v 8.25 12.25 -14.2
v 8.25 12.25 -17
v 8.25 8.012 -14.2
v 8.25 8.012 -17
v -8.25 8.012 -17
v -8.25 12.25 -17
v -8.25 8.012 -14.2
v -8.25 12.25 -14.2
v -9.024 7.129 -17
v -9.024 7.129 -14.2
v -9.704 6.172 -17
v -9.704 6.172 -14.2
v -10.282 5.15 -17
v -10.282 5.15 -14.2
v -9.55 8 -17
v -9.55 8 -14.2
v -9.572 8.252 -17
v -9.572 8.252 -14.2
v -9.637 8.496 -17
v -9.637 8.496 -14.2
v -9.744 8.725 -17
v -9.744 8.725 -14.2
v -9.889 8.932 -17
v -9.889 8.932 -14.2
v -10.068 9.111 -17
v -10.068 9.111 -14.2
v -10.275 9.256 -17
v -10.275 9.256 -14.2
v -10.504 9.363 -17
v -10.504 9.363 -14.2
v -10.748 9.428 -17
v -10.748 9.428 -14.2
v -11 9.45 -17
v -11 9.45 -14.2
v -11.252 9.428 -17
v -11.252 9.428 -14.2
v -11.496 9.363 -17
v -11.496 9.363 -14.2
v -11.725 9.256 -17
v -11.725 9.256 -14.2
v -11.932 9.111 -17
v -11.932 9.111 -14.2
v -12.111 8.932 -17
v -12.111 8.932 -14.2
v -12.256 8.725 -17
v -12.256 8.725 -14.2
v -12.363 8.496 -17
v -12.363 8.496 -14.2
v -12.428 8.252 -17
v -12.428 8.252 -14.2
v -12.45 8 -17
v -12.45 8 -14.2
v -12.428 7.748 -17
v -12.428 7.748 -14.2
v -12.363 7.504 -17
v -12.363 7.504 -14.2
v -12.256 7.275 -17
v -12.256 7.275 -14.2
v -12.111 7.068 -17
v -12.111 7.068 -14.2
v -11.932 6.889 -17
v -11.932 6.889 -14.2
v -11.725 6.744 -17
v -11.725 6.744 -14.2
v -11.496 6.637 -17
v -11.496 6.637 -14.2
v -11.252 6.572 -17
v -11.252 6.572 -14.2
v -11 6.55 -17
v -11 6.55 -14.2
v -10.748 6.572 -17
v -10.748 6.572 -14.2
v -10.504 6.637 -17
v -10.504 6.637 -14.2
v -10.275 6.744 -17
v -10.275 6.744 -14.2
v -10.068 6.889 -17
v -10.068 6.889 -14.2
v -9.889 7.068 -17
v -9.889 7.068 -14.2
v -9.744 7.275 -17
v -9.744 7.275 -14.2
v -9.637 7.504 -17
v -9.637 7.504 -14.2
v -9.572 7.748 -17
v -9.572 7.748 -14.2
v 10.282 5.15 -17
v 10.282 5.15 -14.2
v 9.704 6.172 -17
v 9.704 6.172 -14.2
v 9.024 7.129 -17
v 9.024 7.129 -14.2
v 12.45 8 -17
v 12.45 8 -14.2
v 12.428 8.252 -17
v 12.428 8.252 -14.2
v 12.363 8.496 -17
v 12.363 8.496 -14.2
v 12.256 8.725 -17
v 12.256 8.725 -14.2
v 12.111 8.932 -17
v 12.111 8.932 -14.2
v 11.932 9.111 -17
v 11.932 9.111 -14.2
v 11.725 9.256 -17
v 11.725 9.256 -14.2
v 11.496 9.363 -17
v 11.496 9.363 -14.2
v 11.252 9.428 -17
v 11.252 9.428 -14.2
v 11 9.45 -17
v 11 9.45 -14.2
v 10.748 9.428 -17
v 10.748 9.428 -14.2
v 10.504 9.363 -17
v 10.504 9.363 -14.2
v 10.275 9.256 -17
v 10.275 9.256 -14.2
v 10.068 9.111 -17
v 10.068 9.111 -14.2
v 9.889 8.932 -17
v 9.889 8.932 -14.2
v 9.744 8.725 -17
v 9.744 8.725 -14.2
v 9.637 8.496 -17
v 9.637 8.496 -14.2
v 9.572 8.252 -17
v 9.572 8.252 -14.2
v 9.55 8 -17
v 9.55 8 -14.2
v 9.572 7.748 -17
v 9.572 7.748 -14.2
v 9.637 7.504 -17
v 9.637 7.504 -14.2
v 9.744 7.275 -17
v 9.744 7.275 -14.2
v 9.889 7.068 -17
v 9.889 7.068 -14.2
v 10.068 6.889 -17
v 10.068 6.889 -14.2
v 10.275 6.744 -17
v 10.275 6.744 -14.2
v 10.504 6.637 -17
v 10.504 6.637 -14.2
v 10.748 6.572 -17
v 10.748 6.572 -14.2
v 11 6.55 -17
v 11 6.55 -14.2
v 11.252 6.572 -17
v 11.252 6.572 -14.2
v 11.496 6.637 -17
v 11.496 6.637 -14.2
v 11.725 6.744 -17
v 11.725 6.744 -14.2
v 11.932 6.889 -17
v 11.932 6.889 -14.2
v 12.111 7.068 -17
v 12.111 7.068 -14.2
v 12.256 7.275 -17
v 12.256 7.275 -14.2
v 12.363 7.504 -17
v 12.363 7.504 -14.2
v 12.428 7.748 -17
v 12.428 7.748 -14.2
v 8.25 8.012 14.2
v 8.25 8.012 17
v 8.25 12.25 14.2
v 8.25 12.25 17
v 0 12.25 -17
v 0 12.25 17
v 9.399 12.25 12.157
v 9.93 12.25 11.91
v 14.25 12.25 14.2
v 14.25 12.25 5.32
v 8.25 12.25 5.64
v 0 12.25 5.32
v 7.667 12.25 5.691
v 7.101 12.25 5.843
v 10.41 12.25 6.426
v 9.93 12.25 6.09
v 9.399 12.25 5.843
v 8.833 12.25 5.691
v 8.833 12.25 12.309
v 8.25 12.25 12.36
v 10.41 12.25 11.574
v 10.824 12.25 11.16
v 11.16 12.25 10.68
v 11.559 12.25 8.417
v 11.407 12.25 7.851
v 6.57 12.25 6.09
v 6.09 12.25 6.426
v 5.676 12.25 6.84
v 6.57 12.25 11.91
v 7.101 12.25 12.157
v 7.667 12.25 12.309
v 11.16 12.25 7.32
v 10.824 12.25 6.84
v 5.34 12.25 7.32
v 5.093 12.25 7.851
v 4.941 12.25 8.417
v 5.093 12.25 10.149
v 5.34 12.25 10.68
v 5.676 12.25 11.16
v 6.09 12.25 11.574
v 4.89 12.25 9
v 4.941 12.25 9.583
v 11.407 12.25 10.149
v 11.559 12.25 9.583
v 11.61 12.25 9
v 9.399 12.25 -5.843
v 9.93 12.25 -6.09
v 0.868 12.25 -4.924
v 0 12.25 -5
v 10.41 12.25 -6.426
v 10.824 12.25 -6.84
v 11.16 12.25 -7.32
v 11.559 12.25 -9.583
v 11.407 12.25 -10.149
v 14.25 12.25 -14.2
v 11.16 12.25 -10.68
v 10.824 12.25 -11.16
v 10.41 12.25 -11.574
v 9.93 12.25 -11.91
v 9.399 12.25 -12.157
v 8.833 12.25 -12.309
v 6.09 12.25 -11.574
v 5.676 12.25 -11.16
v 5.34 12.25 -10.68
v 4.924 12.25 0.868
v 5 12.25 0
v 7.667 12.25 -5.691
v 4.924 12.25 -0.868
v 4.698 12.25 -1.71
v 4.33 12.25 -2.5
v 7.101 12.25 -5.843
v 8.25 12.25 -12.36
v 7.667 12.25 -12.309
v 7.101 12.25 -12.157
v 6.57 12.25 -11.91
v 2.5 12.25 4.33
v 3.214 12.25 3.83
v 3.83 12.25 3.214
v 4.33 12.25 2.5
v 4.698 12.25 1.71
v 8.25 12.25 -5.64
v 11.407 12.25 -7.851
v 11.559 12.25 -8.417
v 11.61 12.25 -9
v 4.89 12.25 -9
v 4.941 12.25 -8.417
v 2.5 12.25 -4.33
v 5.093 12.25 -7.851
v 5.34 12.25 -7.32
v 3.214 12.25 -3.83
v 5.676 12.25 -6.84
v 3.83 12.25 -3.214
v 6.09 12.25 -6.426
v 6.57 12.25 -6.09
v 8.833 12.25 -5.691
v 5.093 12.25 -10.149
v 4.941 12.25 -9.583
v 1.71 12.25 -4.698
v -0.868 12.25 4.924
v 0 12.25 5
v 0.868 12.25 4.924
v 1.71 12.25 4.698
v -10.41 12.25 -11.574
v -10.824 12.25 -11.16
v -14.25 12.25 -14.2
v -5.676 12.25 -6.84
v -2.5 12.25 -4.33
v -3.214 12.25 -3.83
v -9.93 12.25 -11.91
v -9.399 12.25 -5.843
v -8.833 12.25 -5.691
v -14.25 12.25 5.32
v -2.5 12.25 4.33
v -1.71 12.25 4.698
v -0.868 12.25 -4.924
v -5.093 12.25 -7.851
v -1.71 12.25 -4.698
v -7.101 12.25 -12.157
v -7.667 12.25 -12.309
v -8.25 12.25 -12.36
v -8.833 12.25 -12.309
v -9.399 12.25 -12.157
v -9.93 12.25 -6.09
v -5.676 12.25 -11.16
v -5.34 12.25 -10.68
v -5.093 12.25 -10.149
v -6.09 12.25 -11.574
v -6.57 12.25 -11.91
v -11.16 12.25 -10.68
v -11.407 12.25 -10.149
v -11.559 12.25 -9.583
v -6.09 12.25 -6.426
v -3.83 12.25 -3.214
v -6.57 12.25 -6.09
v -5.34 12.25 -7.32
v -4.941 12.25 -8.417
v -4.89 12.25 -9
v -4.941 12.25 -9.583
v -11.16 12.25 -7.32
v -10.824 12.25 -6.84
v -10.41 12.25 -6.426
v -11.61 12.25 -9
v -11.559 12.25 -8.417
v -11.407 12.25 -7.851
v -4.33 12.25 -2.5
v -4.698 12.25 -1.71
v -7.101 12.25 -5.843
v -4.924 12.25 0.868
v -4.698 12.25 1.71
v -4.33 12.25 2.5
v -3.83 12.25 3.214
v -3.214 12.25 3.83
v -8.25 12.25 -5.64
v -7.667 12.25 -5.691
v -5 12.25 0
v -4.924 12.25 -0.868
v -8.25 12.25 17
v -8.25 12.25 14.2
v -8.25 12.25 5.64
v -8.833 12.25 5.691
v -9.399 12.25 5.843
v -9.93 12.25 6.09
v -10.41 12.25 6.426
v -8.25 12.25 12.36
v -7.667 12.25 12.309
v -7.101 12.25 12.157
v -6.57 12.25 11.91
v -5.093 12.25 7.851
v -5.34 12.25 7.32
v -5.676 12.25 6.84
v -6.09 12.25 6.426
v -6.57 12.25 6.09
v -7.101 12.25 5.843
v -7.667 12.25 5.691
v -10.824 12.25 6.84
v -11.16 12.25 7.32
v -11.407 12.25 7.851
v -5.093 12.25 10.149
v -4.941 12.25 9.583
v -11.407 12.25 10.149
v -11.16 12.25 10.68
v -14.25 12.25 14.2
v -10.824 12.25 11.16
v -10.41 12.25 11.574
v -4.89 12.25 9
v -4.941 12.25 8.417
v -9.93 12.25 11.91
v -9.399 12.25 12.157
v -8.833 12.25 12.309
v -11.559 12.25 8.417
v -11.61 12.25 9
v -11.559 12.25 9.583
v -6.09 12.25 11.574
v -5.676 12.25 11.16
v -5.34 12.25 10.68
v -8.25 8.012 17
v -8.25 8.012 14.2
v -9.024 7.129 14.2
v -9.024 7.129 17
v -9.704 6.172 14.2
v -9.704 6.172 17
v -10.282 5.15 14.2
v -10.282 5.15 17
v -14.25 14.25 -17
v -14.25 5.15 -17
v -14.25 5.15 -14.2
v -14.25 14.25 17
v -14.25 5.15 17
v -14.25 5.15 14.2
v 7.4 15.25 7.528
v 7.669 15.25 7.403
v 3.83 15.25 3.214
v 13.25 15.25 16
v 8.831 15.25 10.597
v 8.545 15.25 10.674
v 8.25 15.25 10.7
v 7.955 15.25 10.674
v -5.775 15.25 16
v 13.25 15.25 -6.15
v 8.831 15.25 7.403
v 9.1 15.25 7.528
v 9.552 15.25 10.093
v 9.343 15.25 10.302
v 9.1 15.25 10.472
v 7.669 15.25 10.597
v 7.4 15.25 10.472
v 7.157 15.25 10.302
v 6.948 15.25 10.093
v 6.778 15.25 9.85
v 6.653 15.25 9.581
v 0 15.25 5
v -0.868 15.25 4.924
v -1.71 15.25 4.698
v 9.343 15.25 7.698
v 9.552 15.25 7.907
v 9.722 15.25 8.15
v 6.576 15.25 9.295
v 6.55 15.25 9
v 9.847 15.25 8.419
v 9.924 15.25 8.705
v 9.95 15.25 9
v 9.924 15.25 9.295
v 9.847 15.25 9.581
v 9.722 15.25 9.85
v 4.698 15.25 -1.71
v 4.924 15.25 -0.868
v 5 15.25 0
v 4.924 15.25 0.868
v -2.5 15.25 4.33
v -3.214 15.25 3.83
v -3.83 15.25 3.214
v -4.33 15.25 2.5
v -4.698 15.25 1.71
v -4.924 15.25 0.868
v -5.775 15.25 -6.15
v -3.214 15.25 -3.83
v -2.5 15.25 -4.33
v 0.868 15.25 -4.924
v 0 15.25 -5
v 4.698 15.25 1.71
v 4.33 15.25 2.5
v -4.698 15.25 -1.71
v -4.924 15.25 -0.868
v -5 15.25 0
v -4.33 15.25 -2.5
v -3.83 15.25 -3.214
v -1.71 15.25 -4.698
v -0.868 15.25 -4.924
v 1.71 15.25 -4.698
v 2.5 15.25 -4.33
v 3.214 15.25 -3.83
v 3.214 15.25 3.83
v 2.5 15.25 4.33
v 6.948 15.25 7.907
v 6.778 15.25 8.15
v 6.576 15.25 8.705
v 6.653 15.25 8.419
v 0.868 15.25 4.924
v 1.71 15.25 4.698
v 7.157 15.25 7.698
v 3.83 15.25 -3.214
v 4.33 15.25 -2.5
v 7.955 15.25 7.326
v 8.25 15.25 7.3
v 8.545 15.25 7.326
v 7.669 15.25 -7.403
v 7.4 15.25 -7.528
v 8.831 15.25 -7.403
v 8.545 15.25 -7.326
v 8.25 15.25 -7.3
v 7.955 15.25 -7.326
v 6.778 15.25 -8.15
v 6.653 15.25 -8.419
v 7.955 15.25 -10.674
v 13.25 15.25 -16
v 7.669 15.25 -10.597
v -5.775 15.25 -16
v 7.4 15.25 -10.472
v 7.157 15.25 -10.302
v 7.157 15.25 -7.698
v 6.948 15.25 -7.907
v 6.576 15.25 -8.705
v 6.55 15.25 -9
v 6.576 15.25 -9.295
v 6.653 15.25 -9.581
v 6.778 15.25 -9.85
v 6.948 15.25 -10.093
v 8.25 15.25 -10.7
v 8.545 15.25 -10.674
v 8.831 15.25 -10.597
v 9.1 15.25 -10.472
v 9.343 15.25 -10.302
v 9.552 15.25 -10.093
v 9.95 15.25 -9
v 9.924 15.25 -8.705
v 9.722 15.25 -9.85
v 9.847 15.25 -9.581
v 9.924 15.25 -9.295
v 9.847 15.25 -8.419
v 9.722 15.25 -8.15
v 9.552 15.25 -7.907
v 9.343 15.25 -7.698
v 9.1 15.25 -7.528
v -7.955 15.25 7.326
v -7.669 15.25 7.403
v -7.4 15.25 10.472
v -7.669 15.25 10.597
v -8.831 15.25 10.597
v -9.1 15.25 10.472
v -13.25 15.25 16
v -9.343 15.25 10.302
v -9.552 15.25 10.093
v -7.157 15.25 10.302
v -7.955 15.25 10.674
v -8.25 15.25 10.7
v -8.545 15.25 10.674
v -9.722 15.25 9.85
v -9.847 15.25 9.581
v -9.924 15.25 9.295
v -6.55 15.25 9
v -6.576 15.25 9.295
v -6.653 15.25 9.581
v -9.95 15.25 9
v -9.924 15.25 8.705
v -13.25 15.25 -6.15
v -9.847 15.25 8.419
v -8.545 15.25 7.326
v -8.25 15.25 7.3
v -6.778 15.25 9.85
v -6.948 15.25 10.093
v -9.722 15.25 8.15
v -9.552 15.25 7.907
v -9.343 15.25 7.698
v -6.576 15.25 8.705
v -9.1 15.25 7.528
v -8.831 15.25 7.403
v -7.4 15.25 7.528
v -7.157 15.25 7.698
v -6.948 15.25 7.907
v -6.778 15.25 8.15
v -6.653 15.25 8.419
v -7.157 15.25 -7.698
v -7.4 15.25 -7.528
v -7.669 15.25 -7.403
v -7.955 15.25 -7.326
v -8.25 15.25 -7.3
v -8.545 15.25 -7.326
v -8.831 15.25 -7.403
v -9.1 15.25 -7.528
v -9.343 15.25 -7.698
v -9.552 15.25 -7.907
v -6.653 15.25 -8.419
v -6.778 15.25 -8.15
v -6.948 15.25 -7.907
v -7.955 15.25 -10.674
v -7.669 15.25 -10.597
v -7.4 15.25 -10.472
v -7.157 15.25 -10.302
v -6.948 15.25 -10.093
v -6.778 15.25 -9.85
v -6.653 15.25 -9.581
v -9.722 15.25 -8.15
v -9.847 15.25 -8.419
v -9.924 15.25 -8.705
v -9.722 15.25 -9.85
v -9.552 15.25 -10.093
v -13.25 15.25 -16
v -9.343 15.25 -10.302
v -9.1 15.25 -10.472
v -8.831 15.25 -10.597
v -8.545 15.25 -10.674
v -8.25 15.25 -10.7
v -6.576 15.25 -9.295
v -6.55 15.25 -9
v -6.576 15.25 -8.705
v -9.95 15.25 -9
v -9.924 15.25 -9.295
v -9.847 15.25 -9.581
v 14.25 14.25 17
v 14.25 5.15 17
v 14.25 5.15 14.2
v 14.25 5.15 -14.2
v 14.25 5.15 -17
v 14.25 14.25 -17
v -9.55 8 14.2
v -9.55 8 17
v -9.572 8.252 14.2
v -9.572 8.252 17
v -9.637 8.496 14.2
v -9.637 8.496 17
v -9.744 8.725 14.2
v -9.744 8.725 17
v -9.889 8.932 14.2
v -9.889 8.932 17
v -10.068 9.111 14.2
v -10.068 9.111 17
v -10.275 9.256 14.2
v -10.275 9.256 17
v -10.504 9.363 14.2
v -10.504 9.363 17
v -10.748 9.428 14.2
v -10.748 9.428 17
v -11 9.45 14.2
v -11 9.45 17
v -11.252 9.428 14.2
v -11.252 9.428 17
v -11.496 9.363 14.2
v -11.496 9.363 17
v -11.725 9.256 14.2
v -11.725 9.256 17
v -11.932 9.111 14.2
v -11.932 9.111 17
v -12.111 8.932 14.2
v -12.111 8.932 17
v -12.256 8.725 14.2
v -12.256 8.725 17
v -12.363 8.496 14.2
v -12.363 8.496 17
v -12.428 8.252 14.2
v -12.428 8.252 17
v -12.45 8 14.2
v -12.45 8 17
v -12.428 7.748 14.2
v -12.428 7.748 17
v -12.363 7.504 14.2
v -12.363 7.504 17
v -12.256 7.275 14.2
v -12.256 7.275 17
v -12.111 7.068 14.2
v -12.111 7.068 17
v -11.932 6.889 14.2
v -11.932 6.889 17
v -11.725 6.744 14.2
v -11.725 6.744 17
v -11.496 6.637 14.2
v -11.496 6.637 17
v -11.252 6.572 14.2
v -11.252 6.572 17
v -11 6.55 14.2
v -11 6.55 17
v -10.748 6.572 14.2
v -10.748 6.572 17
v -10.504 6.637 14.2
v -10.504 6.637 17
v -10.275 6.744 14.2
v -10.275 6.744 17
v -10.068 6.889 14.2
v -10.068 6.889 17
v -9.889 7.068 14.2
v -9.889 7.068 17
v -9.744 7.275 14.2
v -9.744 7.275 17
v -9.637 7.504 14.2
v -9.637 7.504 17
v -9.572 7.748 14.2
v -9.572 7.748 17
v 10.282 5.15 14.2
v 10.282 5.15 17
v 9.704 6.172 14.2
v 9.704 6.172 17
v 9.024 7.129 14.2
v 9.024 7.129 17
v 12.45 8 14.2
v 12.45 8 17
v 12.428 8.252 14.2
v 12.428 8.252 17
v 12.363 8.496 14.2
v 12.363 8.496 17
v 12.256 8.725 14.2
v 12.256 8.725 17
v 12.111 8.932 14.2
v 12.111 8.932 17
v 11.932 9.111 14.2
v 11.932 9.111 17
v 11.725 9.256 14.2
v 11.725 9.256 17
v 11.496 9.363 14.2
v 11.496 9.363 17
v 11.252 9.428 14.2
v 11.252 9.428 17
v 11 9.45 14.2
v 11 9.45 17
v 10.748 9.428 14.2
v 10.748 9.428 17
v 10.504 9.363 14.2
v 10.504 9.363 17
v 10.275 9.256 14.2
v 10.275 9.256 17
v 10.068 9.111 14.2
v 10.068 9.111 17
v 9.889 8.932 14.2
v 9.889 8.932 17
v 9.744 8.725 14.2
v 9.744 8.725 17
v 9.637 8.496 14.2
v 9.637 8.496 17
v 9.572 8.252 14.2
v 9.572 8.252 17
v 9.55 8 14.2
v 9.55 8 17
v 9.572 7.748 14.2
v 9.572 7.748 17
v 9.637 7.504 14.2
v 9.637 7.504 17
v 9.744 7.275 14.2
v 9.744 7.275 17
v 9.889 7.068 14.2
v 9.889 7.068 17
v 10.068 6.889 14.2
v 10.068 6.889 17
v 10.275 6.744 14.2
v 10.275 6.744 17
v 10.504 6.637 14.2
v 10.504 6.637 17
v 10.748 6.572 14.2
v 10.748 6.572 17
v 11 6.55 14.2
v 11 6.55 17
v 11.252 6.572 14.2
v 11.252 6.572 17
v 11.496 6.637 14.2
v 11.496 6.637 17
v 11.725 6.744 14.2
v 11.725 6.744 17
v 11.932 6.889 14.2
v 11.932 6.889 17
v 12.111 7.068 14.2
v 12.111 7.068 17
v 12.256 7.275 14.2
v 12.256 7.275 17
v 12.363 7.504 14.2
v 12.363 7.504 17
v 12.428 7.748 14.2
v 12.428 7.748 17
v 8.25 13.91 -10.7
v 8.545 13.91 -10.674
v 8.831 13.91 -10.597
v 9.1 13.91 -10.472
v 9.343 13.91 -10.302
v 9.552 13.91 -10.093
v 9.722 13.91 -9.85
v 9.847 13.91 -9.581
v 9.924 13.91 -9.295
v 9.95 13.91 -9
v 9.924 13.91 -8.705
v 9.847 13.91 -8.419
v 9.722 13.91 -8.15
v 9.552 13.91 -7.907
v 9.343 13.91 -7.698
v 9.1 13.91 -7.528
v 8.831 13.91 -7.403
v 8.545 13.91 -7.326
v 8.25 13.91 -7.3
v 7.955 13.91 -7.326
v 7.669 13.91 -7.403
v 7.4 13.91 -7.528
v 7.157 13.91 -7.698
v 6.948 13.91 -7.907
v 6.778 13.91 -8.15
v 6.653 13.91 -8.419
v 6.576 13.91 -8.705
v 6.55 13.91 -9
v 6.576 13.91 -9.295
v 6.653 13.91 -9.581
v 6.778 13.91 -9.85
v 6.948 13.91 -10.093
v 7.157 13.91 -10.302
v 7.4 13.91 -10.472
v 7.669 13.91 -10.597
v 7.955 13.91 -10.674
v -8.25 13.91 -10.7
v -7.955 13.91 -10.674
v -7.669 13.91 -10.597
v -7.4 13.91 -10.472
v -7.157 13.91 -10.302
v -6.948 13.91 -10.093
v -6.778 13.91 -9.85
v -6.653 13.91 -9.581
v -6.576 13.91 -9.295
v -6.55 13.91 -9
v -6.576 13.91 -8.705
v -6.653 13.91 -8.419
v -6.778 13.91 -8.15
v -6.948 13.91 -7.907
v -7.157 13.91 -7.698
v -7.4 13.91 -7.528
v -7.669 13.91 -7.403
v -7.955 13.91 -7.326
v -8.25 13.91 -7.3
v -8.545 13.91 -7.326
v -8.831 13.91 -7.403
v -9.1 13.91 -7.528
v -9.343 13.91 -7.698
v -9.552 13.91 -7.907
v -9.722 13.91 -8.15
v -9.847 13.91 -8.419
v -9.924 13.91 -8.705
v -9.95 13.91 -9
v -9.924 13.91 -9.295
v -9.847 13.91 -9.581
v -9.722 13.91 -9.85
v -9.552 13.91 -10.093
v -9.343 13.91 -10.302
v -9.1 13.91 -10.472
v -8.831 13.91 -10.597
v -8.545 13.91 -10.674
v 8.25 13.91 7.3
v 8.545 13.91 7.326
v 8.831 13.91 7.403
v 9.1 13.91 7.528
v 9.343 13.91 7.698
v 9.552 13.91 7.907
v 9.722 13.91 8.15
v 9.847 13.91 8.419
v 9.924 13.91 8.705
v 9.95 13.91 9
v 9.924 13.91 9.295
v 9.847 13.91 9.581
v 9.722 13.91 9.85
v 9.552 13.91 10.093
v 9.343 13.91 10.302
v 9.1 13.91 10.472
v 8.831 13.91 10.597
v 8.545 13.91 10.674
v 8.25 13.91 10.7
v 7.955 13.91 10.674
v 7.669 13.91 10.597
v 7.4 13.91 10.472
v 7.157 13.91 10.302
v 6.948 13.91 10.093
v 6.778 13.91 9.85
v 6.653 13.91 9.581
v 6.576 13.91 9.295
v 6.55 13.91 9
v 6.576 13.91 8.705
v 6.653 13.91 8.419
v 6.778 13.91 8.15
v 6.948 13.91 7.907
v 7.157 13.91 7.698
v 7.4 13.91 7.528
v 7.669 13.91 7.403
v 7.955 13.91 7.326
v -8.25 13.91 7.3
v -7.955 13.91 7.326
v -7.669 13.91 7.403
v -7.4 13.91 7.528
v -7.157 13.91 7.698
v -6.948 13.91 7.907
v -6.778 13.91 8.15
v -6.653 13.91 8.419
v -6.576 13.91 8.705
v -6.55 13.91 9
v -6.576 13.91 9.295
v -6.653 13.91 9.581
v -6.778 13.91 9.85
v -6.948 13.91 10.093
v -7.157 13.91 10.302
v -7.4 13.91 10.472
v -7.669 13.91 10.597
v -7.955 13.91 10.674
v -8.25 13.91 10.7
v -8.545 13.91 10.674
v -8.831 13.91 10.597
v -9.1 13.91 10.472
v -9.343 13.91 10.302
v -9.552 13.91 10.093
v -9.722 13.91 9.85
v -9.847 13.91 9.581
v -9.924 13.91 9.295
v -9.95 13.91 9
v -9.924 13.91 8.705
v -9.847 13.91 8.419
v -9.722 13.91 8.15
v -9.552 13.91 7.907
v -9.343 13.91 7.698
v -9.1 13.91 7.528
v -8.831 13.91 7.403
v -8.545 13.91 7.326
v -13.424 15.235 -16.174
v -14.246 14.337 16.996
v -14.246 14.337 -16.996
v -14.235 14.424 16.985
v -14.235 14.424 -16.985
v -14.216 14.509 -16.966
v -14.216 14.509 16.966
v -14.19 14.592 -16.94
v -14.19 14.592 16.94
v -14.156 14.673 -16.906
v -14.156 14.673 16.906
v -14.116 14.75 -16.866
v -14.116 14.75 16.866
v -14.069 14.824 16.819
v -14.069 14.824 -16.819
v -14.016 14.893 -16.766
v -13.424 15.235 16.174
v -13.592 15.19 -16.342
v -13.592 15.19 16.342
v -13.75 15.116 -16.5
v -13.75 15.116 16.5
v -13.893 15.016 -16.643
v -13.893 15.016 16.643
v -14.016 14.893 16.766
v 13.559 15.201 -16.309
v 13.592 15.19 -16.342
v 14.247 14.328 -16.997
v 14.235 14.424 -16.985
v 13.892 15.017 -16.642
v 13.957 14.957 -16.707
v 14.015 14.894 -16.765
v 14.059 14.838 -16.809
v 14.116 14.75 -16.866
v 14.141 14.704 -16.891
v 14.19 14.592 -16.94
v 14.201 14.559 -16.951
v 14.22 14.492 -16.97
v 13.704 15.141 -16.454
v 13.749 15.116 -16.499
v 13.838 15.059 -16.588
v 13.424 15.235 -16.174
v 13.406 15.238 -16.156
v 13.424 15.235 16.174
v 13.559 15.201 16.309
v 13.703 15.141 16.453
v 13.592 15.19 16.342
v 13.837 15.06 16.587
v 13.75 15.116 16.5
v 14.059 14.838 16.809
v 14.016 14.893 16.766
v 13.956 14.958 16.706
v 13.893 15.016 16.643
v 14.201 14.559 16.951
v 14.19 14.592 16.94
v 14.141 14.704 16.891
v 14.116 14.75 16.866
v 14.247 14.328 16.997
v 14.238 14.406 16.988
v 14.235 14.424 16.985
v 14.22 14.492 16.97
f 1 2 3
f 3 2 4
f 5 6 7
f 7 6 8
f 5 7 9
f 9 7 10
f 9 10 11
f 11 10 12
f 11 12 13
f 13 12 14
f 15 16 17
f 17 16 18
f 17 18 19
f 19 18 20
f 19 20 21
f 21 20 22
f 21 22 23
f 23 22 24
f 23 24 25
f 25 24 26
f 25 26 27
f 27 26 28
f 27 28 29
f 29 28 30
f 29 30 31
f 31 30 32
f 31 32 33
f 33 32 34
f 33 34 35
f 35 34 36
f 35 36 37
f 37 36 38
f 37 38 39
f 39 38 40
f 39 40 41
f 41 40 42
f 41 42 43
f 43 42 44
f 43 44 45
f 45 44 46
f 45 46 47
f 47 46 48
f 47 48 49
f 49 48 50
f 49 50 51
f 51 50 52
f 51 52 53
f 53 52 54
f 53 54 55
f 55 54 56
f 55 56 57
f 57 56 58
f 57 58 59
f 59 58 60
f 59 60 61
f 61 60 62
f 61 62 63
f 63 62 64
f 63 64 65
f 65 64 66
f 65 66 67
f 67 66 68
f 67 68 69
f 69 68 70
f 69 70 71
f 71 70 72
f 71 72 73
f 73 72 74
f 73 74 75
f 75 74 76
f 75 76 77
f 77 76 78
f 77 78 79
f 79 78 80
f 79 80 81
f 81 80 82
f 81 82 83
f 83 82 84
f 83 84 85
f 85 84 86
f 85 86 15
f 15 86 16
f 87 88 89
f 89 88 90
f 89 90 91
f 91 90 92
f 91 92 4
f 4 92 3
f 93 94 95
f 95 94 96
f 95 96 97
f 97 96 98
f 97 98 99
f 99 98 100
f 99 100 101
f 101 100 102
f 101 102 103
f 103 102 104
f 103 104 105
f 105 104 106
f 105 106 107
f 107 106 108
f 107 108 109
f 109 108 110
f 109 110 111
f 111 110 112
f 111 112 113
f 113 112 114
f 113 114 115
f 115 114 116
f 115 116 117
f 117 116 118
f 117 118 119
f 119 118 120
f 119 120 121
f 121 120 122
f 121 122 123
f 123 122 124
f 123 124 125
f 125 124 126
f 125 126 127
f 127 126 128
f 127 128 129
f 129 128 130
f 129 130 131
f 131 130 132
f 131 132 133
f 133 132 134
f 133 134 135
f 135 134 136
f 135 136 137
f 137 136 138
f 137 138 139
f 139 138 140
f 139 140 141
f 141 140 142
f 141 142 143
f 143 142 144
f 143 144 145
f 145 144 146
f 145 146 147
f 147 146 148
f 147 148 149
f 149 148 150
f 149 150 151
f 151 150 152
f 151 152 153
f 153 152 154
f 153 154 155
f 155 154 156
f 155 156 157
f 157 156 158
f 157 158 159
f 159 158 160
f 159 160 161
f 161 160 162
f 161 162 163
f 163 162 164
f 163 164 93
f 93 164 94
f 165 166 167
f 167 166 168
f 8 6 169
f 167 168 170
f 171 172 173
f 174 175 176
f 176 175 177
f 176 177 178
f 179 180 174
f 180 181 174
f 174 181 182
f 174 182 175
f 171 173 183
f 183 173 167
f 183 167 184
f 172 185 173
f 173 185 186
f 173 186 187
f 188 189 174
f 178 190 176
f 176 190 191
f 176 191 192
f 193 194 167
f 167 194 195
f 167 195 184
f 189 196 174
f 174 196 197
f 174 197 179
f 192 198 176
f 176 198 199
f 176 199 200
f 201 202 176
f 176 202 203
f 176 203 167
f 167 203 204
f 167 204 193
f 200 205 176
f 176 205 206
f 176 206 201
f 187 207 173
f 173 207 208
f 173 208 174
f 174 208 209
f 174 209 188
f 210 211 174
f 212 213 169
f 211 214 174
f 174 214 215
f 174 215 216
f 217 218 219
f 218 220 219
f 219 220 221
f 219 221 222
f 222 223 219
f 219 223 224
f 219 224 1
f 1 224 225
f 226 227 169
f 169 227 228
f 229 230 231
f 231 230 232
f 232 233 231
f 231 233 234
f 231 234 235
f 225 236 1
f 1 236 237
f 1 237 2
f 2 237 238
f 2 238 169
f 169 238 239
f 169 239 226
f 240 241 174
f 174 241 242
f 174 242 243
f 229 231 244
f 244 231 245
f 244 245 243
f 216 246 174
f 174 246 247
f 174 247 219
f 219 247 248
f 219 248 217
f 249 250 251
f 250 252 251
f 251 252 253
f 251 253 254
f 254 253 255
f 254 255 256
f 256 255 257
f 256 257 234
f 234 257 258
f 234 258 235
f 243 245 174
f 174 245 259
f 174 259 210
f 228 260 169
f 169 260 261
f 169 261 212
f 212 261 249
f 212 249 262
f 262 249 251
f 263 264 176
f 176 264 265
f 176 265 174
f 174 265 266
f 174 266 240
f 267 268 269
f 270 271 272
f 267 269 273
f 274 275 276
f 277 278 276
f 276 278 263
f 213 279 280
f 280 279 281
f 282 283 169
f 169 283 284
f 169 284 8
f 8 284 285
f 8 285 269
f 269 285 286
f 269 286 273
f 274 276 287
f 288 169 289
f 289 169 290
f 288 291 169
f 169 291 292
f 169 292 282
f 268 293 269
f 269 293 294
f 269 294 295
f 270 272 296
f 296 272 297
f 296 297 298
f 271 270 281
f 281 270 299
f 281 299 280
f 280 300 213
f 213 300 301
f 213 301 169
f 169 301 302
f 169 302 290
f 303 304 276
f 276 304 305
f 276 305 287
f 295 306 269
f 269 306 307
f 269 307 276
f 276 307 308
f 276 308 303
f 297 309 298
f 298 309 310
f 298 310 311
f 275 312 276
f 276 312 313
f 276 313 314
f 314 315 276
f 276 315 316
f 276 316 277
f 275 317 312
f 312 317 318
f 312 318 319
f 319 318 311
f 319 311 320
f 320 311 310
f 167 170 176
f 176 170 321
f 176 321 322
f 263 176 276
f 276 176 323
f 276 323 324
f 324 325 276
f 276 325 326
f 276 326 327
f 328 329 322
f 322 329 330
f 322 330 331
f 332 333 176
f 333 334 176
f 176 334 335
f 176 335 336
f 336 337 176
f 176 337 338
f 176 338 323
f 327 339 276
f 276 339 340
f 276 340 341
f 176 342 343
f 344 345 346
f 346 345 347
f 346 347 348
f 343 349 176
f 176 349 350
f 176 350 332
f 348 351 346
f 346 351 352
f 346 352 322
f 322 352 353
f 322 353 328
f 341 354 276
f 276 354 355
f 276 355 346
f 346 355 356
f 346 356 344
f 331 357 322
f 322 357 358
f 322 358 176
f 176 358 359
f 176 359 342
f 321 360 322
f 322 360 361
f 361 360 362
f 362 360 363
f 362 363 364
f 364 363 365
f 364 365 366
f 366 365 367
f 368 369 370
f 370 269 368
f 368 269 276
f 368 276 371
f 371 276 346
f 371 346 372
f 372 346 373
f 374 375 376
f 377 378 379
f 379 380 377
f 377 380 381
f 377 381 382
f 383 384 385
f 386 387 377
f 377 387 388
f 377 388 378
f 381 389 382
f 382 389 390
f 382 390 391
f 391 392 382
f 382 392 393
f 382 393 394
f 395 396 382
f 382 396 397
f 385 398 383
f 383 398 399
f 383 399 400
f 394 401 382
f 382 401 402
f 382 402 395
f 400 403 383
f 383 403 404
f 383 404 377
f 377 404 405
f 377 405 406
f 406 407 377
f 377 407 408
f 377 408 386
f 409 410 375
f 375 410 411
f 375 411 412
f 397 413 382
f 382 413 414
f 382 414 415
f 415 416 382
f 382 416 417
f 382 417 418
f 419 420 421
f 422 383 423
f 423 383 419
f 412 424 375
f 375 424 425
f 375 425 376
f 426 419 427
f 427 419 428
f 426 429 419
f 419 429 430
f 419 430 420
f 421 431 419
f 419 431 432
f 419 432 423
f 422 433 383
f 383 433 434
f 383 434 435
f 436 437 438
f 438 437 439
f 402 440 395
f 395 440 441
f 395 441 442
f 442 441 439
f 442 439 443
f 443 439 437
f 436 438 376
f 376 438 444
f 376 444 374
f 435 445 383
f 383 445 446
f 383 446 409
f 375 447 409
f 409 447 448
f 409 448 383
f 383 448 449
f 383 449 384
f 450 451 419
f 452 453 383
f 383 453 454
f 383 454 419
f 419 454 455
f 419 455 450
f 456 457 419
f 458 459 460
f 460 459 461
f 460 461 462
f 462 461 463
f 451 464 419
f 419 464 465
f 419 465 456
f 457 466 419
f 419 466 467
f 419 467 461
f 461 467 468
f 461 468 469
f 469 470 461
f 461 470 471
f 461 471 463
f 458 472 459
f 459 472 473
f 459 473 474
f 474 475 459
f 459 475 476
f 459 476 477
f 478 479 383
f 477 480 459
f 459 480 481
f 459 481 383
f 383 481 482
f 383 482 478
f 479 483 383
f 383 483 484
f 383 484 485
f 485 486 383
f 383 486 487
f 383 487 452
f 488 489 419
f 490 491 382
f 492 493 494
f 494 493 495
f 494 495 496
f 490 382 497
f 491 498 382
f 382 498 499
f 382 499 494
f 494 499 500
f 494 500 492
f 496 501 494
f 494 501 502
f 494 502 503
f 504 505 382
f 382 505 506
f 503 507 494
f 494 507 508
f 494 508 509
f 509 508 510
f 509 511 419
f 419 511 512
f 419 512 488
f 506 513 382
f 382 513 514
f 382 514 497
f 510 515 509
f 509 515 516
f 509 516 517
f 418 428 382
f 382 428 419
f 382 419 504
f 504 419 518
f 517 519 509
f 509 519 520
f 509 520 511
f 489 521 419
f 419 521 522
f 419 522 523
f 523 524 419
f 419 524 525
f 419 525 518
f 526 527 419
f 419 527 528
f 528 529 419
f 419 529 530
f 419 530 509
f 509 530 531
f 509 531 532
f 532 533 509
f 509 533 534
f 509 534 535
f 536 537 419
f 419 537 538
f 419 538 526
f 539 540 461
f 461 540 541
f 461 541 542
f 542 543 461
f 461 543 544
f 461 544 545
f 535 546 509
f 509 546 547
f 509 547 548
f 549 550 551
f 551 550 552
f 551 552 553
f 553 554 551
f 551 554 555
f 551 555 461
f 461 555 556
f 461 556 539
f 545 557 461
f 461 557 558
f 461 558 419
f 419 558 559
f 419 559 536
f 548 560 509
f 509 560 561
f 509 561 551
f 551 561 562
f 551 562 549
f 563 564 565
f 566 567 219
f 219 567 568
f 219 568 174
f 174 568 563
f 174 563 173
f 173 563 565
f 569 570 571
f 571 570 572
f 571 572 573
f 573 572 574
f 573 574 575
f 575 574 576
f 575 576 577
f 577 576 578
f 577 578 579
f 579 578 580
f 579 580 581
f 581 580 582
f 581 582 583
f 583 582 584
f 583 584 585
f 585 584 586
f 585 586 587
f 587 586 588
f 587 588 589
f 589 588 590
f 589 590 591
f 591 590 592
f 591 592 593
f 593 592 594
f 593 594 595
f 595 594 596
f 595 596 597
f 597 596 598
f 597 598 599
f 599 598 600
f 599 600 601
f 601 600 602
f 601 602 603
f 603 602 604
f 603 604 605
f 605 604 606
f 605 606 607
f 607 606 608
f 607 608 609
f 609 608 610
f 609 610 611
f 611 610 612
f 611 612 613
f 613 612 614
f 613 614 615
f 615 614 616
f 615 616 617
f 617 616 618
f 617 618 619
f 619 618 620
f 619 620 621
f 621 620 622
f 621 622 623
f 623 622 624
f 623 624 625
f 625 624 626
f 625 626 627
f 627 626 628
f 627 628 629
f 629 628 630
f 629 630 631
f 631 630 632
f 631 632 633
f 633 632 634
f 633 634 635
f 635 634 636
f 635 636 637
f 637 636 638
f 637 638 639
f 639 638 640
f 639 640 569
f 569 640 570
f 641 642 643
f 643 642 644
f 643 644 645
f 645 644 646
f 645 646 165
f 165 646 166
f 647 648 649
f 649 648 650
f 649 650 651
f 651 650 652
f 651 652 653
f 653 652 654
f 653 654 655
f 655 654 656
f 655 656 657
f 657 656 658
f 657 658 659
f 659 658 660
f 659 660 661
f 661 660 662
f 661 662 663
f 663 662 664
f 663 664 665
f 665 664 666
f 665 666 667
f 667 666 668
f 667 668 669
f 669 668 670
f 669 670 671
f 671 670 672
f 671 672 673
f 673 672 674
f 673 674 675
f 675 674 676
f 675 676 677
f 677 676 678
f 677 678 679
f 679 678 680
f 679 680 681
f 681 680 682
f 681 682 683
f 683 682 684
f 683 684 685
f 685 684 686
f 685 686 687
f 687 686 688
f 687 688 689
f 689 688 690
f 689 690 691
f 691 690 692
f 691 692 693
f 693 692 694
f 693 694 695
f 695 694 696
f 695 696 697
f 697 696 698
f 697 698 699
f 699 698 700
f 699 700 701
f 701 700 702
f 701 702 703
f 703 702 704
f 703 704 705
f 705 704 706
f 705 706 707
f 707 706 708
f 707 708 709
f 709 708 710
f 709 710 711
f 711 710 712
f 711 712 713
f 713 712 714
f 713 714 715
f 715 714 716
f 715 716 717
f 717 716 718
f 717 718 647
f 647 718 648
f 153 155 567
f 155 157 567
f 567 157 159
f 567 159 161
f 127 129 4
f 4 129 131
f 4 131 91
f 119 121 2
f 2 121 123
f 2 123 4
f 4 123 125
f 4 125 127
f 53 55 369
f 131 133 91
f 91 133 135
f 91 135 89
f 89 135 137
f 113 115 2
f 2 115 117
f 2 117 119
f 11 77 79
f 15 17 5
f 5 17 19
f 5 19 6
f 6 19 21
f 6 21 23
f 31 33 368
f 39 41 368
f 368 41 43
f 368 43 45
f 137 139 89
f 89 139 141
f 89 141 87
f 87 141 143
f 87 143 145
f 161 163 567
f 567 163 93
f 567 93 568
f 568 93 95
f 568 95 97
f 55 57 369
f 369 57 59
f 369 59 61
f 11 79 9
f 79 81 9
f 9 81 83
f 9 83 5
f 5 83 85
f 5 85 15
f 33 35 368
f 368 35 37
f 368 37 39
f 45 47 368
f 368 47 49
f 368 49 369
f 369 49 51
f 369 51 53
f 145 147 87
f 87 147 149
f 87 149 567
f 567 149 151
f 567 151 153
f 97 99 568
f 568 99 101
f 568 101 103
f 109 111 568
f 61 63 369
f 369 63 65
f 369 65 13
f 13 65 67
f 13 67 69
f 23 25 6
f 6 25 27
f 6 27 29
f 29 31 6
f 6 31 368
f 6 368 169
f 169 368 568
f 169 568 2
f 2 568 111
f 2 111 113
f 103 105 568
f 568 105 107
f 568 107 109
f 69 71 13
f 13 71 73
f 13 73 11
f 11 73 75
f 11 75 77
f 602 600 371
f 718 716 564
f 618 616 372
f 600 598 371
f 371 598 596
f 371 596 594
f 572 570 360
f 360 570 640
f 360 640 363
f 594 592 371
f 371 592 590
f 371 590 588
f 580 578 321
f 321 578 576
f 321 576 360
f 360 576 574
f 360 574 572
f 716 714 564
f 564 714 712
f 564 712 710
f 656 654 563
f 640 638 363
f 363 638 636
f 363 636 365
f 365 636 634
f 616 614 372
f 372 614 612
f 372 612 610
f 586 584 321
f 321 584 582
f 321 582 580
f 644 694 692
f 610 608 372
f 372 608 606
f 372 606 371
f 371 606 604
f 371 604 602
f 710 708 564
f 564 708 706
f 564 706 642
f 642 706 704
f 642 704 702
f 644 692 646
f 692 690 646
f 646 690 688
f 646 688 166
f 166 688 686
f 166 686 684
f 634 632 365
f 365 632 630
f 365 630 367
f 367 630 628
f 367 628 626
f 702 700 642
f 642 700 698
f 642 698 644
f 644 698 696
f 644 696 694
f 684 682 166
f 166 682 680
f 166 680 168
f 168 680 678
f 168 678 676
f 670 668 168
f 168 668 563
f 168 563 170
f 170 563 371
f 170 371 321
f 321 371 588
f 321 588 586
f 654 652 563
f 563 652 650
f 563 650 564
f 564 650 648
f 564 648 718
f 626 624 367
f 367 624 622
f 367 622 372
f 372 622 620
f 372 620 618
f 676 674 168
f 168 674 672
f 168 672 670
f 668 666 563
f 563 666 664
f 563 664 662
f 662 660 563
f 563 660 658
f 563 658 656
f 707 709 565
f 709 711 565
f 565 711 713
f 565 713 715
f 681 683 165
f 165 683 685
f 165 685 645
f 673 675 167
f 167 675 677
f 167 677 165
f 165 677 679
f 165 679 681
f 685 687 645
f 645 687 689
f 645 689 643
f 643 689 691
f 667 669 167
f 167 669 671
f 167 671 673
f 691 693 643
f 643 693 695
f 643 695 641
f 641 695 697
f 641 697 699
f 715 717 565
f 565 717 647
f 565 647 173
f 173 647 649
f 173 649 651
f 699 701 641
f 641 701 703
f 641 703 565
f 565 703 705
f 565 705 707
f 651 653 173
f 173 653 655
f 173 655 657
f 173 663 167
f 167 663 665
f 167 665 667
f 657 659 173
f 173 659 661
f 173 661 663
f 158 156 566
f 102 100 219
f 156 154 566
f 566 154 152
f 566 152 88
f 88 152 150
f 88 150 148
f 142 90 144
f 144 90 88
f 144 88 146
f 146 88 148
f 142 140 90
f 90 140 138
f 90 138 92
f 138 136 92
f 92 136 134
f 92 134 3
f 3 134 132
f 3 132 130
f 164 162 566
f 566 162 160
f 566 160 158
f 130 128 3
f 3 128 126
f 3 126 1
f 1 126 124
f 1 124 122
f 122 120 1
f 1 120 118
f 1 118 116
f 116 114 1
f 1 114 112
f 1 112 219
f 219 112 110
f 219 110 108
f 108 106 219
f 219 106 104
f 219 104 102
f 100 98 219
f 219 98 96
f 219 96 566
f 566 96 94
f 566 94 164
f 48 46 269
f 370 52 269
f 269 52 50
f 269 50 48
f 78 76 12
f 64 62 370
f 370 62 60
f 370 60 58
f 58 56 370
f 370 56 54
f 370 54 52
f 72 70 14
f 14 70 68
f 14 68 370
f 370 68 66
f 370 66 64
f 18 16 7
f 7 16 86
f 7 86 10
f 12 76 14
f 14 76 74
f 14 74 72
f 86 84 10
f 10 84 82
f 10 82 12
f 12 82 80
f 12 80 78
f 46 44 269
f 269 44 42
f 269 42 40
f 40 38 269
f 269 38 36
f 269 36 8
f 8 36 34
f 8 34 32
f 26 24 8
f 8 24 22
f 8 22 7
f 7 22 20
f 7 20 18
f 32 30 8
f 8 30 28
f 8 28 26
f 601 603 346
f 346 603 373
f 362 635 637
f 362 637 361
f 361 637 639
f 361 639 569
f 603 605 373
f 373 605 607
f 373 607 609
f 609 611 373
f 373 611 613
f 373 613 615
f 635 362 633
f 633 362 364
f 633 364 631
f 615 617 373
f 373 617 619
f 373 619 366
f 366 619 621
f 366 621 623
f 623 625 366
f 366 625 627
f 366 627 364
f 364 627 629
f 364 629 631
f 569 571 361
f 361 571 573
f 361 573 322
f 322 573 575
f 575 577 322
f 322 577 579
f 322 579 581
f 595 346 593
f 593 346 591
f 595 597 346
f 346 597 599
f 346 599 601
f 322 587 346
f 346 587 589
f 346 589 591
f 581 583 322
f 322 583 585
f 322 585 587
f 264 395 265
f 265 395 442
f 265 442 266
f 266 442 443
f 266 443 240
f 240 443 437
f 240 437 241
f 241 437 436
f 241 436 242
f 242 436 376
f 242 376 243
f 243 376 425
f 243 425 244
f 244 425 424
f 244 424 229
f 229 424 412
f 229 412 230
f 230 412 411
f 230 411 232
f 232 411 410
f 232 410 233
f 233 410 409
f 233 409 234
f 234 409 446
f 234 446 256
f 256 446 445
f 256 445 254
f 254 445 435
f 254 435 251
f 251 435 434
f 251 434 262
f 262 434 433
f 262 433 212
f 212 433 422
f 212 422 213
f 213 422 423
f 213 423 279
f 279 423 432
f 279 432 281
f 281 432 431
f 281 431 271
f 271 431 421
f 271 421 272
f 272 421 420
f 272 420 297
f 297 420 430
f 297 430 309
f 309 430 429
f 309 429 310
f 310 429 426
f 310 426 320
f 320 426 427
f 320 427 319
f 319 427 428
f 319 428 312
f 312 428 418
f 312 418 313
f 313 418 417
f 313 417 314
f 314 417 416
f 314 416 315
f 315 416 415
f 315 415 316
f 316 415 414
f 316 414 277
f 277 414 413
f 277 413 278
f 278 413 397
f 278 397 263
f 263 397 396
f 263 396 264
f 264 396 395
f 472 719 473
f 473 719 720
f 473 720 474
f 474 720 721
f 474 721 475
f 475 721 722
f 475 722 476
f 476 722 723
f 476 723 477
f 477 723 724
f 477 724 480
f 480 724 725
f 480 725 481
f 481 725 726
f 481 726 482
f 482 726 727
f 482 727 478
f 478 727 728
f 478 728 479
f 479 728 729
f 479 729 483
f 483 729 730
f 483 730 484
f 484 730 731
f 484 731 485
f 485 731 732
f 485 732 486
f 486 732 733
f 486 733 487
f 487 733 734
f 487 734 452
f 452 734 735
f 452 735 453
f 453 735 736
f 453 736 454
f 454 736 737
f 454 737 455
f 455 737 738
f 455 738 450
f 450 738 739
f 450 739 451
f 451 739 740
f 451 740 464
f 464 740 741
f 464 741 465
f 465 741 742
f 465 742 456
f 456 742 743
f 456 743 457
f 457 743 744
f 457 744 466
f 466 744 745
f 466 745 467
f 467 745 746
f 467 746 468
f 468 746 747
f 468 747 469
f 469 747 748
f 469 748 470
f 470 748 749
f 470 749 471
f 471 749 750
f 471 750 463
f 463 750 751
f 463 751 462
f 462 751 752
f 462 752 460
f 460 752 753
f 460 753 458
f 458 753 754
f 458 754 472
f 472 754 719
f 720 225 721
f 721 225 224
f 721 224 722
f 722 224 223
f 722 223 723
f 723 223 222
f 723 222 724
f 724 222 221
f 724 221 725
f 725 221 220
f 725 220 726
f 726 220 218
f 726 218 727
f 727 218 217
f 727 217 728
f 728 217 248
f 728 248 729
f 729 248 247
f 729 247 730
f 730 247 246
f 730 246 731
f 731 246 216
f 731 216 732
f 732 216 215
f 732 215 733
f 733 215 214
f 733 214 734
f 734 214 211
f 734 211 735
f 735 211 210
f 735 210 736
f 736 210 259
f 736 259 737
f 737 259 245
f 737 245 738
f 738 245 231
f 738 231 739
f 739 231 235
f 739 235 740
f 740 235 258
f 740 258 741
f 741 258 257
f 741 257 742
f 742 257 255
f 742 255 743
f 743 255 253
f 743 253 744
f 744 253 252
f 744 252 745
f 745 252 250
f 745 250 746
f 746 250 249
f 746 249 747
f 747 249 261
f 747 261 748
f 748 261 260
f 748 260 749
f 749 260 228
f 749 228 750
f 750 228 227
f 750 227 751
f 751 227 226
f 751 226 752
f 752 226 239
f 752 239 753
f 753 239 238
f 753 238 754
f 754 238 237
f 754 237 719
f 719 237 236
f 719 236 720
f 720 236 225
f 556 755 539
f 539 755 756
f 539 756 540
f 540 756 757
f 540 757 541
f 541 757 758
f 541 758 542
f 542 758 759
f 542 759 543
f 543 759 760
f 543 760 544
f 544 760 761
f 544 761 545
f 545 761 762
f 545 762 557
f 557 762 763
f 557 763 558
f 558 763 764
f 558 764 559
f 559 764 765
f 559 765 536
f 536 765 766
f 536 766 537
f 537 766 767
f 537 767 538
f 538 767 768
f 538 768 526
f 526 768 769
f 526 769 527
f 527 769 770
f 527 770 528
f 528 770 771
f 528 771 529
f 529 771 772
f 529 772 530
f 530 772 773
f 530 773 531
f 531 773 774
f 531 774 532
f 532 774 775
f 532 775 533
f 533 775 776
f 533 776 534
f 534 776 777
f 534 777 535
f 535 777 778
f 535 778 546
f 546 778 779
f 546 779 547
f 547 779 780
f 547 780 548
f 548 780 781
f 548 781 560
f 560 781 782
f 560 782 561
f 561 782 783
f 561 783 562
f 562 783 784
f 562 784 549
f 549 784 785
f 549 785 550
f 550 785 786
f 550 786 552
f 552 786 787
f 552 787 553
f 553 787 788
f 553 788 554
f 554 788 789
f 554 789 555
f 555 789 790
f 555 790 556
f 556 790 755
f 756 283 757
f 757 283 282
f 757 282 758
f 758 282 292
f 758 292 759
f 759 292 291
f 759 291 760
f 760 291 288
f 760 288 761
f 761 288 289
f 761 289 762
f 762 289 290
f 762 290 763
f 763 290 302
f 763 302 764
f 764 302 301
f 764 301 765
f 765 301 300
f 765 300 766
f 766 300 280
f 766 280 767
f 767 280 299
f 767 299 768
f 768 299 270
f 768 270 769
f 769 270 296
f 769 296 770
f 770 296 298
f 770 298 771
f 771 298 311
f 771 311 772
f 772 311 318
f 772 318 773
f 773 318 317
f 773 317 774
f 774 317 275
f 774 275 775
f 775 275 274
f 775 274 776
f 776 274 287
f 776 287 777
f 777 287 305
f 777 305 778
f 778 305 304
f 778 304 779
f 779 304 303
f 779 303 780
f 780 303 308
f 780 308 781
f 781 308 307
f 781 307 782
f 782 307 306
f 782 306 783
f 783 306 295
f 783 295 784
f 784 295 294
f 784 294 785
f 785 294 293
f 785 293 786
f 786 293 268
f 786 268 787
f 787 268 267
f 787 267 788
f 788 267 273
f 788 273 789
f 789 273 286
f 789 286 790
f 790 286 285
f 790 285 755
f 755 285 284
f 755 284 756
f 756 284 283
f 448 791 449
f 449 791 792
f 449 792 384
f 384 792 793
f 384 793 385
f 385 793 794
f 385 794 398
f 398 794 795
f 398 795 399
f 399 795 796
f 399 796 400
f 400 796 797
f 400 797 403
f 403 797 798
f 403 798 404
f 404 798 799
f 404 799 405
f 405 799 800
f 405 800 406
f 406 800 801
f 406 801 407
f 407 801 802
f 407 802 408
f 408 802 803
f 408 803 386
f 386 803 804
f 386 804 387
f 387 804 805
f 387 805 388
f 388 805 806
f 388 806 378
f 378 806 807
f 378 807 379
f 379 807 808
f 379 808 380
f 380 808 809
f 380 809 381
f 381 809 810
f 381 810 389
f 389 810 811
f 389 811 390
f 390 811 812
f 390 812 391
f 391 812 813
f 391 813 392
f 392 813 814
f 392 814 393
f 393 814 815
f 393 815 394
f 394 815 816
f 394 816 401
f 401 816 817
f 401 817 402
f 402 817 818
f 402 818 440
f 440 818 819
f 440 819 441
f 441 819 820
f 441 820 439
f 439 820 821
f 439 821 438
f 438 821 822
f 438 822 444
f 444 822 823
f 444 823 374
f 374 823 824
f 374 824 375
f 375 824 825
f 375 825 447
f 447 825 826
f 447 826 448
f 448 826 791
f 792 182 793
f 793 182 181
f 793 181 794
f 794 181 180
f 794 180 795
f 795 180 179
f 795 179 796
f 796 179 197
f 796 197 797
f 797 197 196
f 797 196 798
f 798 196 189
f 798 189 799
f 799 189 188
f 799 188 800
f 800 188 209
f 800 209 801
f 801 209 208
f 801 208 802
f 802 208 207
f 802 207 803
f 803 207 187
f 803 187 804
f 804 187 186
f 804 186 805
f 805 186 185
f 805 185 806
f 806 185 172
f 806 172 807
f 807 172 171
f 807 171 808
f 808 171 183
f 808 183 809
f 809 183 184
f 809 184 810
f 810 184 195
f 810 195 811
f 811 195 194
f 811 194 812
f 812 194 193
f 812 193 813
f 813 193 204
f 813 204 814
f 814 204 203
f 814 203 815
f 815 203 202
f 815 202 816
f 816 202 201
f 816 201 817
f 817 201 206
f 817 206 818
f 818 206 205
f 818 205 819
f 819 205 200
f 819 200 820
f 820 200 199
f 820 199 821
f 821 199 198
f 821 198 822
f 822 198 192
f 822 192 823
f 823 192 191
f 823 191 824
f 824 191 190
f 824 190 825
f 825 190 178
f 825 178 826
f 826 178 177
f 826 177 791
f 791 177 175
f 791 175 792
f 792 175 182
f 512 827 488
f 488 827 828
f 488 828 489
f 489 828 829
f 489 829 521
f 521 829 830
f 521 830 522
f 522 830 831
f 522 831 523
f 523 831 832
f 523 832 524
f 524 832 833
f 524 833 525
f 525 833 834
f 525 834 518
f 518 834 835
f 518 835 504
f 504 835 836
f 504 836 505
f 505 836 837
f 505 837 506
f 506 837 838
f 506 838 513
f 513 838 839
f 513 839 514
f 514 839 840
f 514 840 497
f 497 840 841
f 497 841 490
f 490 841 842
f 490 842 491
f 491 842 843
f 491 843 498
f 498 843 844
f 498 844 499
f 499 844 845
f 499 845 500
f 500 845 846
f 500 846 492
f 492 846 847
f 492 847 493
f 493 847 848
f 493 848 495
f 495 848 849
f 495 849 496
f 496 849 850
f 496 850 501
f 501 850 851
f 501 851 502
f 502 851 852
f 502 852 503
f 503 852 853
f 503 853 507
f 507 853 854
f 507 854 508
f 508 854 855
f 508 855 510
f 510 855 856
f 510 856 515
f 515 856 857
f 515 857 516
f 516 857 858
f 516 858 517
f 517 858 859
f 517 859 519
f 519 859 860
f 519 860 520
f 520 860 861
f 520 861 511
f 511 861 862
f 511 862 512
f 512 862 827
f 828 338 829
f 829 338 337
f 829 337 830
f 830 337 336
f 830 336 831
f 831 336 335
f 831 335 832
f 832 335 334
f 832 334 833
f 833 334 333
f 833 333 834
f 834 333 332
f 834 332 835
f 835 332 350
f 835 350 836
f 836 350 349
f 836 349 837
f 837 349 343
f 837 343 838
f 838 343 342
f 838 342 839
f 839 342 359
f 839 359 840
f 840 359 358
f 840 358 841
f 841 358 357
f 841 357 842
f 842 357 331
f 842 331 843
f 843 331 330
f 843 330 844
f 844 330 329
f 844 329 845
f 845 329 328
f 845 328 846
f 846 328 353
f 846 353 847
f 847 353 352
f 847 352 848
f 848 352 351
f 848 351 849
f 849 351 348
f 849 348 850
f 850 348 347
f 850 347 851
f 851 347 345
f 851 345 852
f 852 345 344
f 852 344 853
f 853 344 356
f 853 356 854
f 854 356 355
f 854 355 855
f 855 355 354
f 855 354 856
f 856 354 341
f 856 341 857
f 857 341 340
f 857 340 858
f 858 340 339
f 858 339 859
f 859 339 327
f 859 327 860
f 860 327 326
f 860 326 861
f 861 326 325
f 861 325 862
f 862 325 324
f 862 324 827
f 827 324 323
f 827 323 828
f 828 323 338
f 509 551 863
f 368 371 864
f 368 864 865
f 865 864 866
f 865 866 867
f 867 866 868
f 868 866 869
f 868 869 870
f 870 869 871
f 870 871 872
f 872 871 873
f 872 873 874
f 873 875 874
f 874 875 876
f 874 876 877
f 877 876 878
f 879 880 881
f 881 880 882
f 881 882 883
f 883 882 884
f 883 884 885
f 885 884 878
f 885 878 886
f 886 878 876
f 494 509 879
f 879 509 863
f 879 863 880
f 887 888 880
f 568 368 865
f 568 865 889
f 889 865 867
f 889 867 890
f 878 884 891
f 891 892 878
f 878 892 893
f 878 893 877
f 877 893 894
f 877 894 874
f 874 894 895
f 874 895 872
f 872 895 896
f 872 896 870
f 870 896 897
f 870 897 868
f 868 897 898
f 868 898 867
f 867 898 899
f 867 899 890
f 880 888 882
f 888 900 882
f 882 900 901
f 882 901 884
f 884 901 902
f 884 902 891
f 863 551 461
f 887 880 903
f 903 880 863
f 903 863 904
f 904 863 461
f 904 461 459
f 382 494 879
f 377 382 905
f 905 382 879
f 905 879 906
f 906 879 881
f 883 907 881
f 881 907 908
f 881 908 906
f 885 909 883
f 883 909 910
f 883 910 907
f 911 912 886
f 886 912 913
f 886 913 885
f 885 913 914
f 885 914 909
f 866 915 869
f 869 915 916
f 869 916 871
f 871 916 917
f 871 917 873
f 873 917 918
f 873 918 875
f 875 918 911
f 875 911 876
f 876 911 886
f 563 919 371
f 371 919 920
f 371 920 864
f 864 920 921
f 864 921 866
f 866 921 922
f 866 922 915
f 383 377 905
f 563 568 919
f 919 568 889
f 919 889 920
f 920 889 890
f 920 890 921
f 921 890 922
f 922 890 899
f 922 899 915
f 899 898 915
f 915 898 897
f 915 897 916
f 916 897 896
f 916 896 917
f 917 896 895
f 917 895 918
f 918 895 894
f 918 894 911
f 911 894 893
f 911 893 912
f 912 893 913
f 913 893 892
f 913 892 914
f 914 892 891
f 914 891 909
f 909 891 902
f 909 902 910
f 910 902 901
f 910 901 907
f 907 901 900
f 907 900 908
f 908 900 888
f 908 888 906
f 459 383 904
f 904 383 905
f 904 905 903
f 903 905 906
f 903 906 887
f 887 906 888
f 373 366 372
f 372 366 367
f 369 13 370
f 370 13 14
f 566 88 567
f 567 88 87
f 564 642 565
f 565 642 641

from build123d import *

# Parameters (mm, degrees)
BOSS_EXTRUDE7_DEPTH                          = 17
BOSS_EXTRUDE7_DEPTH_BACK                     = 17
SKETCH1_R                                    = 1.45
SKETCH34_W                                   = 28.4
SKETCH34_H                                   = 7.5
CUT_EXTRUDE11_DEPTH                          = 37.521397837
SKETCH35_R                                   = 5
CUT_EXTRUDE12_DEPTH                          = 25.542055741
CSK_FOR_M3_HEX_SOCKET_COUNTERSUNK_CA_2_COUNT = 2
CSK_FOR_M3_HEX_SOCKET_COUNTERSUNK_CA_2_PITCH = 16.5
CSK_FOR_M3_HEX_SOCKET_COUNTERSUNK_CA_3_COUNT = 2
CSK_FOR_M3_HEX_SOCKET_COUNTERSUNK_CA_3_PITCH = 18
CSK_FOR_M3_HEX_SOCKET_COUNTERSUNK_CA_4_COUNT = 2
CSK_FOR_M3_HEX_SOCKET_COUNTERSUNK_CA_4_PITCH = 24.418230894
FILLET5_R                                    = 1
SKETCH41_W                                   = 28.5
SKETCH41_H                                   = 0.4
CUT_EXTRUDE13_DEPTH                          = 40.895175147


with BuildPart() as part:
    # Sketch1 → Boss-Extrude7 (new, two sides: drawn at the far end of the back side and taken through both)
    with BuildSketch(Plane.XY.offset(-BOSS_EXTRUDE7_DEPTH_BACK)):
        with BuildLine():
            Line((-14.25, 15.25), (-14.25, 4.75))
            Line((-14.25, 4.75), (-10.473180033, 4.75))
            ThreePointArc((-10.473180033, 4.75), (-9.502581542, 6.476954843), (-8.25, 8.011710179))
            Line((-8.25, 8.011710179), (-8.25, 12.25))
            Line((-8.25, 12.25), (8.25, 12.25))
            Line((8.25, 12.25), (8.25, 8.011710179))
            ThreePointArc((8.25, 8.011710179), (9.502581542, 6.476954843), (10.473180033, 4.75))
            Line((10.473180033, 4.75), (14.25, 4.75))
            Line((14.25, 4.75), (14.25, 15.25))
            Line((14.25, 15.25), (-14.25, 15.25))
        make_face()
        with Locations((11, 8)):
            Circle(SKETCH1_R, mode=Mode.SUBTRACT)
        with Locations((-11, 8)):
            Circle(SKETCH1_R, mode=Mode.SUBTRACT)
    extrude(amount=BOSS_EXTRUDE7_DEPTH + BOSS_EXTRUDE7_DEPTH_BACK)

    # Sketch34 → Cut-Extrude11 (cut, through all)
    with BuildSketch(Plane.ZY.offset(14.25)):
        with Locations((0, 8.5)):
            Rectangle(SKETCH34_W, SKETCH34_H)
    extrude(amount=-CUT_EXTRUDE11_DEPTH, mode=Mode.SUBTRACT)

    # Sketch35 → Cut-Extrude12 (cut, through all)
    with BuildSketch(Plane(origin=(0, 15.25, 0), x_dir=(1, 0, 0), z_dir=(0, 1, 0))):
        Circle(SKETCH35_R)
    extrude(amount=-CUT_EXTRUDE12_DEPTH, mode=Mode.SUBTRACT)

    # Sketch40 → CSK for M3 Hex Socket Countersunk Cap Screw3 (revolve, cut)
    with BuildSketch(Plane(origin=(-8.25, 12.25, 9), x_dir=(0, 0, -1), z_dir=(1, 0, 0))):
        Polygon((0, 0), (0, 3), (1.7, 3), (1.7, 1.66), (3.36, 0), align=None)
    csk_for_m3_hex_socket_countersunk_cap_sc = revolve(axis=Axis((-8.25, 5.9, 9), (0, 1, 0)), mode=Mode.SUBTRACT)

    # CSK for M3 Hex Socket Countersunk Ca 2: CSK for M3 Hex Socket Countersunk Cap Screw3 ×2
    with Locations(*[(i * CSK_FOR_M3_HEX_SOCKET_COUNTERSUNK_CA_2_PITCH, 0, 0) for i in range(1, CSK_FOR_M3_HEX_SOCKET_COUNTERSUNK_CA_2_COUNT)]):
        add(csk_for_m3_hex_socket_countersunk_cap_sc, mode=Mode.SUBTRACT)

    # CSK for M3 Hex Socket Countersunk Ca 3: CSK for M3 Hex Socket Countersunk Cap Screw3 ×2
    with Locations(*[(0, 0, -i * CSK_FOR_M3_HEX_SOCKET_COUNTERSUNK_CA_3_PITCH) for i in range(1, CSK_FOR_M3_HEX_SOCKET_COUNTERSUNK_CA_3_COUNT)]):
        add(csk_for_m3_hex_socket_countersunk_cap_sc, mode=Mode.SUBTRACT)

    # CSK for M3 Hex Socket Countersunk Ca 4: CSK for M3 Hex Socket Countersunk Cap Screw3 ×2
    with Locations(*[Vector(0.6757246285173466, 0, -0.7371541402007413) * (i * CSK_FOR_M3_HEX_SOCKET_COUNTERSUNK_CA_4_PITCH) for i in range(1, CSK_FOR_M3_HEX_SOCKET_COUNTERSUNK_CA_4_COUNT)]):
        add(csk_for_m3_hex_socket_countersunk_cap_sc, mode=Mode.SUBTRACT)

    # Fillet5
    fillet5_edges = [part.edges().sort_by_distance(p)[0] for p in [
        (14.25, 15.25, 0),
        (-14.25, 15.25, 0),
        (0, 15.25, -17),
        (0, 15.25, 17),
    ]]
    fillet(fillet5_edges, radius=FILLET5_R)

    # Sketch41 → Cut-Extrude13 (cut, through all)
    with BuildSketch(Plane.XY.offset(17)):
        with Locations((0, 4.95)):
            Rectangle(SKETCH41_W, SKETCH41_H)
    extrude(amount=-CUT_EXTRUDE13_DEPTH, mode=Mode.SUBTRACT)


solid = part.part
